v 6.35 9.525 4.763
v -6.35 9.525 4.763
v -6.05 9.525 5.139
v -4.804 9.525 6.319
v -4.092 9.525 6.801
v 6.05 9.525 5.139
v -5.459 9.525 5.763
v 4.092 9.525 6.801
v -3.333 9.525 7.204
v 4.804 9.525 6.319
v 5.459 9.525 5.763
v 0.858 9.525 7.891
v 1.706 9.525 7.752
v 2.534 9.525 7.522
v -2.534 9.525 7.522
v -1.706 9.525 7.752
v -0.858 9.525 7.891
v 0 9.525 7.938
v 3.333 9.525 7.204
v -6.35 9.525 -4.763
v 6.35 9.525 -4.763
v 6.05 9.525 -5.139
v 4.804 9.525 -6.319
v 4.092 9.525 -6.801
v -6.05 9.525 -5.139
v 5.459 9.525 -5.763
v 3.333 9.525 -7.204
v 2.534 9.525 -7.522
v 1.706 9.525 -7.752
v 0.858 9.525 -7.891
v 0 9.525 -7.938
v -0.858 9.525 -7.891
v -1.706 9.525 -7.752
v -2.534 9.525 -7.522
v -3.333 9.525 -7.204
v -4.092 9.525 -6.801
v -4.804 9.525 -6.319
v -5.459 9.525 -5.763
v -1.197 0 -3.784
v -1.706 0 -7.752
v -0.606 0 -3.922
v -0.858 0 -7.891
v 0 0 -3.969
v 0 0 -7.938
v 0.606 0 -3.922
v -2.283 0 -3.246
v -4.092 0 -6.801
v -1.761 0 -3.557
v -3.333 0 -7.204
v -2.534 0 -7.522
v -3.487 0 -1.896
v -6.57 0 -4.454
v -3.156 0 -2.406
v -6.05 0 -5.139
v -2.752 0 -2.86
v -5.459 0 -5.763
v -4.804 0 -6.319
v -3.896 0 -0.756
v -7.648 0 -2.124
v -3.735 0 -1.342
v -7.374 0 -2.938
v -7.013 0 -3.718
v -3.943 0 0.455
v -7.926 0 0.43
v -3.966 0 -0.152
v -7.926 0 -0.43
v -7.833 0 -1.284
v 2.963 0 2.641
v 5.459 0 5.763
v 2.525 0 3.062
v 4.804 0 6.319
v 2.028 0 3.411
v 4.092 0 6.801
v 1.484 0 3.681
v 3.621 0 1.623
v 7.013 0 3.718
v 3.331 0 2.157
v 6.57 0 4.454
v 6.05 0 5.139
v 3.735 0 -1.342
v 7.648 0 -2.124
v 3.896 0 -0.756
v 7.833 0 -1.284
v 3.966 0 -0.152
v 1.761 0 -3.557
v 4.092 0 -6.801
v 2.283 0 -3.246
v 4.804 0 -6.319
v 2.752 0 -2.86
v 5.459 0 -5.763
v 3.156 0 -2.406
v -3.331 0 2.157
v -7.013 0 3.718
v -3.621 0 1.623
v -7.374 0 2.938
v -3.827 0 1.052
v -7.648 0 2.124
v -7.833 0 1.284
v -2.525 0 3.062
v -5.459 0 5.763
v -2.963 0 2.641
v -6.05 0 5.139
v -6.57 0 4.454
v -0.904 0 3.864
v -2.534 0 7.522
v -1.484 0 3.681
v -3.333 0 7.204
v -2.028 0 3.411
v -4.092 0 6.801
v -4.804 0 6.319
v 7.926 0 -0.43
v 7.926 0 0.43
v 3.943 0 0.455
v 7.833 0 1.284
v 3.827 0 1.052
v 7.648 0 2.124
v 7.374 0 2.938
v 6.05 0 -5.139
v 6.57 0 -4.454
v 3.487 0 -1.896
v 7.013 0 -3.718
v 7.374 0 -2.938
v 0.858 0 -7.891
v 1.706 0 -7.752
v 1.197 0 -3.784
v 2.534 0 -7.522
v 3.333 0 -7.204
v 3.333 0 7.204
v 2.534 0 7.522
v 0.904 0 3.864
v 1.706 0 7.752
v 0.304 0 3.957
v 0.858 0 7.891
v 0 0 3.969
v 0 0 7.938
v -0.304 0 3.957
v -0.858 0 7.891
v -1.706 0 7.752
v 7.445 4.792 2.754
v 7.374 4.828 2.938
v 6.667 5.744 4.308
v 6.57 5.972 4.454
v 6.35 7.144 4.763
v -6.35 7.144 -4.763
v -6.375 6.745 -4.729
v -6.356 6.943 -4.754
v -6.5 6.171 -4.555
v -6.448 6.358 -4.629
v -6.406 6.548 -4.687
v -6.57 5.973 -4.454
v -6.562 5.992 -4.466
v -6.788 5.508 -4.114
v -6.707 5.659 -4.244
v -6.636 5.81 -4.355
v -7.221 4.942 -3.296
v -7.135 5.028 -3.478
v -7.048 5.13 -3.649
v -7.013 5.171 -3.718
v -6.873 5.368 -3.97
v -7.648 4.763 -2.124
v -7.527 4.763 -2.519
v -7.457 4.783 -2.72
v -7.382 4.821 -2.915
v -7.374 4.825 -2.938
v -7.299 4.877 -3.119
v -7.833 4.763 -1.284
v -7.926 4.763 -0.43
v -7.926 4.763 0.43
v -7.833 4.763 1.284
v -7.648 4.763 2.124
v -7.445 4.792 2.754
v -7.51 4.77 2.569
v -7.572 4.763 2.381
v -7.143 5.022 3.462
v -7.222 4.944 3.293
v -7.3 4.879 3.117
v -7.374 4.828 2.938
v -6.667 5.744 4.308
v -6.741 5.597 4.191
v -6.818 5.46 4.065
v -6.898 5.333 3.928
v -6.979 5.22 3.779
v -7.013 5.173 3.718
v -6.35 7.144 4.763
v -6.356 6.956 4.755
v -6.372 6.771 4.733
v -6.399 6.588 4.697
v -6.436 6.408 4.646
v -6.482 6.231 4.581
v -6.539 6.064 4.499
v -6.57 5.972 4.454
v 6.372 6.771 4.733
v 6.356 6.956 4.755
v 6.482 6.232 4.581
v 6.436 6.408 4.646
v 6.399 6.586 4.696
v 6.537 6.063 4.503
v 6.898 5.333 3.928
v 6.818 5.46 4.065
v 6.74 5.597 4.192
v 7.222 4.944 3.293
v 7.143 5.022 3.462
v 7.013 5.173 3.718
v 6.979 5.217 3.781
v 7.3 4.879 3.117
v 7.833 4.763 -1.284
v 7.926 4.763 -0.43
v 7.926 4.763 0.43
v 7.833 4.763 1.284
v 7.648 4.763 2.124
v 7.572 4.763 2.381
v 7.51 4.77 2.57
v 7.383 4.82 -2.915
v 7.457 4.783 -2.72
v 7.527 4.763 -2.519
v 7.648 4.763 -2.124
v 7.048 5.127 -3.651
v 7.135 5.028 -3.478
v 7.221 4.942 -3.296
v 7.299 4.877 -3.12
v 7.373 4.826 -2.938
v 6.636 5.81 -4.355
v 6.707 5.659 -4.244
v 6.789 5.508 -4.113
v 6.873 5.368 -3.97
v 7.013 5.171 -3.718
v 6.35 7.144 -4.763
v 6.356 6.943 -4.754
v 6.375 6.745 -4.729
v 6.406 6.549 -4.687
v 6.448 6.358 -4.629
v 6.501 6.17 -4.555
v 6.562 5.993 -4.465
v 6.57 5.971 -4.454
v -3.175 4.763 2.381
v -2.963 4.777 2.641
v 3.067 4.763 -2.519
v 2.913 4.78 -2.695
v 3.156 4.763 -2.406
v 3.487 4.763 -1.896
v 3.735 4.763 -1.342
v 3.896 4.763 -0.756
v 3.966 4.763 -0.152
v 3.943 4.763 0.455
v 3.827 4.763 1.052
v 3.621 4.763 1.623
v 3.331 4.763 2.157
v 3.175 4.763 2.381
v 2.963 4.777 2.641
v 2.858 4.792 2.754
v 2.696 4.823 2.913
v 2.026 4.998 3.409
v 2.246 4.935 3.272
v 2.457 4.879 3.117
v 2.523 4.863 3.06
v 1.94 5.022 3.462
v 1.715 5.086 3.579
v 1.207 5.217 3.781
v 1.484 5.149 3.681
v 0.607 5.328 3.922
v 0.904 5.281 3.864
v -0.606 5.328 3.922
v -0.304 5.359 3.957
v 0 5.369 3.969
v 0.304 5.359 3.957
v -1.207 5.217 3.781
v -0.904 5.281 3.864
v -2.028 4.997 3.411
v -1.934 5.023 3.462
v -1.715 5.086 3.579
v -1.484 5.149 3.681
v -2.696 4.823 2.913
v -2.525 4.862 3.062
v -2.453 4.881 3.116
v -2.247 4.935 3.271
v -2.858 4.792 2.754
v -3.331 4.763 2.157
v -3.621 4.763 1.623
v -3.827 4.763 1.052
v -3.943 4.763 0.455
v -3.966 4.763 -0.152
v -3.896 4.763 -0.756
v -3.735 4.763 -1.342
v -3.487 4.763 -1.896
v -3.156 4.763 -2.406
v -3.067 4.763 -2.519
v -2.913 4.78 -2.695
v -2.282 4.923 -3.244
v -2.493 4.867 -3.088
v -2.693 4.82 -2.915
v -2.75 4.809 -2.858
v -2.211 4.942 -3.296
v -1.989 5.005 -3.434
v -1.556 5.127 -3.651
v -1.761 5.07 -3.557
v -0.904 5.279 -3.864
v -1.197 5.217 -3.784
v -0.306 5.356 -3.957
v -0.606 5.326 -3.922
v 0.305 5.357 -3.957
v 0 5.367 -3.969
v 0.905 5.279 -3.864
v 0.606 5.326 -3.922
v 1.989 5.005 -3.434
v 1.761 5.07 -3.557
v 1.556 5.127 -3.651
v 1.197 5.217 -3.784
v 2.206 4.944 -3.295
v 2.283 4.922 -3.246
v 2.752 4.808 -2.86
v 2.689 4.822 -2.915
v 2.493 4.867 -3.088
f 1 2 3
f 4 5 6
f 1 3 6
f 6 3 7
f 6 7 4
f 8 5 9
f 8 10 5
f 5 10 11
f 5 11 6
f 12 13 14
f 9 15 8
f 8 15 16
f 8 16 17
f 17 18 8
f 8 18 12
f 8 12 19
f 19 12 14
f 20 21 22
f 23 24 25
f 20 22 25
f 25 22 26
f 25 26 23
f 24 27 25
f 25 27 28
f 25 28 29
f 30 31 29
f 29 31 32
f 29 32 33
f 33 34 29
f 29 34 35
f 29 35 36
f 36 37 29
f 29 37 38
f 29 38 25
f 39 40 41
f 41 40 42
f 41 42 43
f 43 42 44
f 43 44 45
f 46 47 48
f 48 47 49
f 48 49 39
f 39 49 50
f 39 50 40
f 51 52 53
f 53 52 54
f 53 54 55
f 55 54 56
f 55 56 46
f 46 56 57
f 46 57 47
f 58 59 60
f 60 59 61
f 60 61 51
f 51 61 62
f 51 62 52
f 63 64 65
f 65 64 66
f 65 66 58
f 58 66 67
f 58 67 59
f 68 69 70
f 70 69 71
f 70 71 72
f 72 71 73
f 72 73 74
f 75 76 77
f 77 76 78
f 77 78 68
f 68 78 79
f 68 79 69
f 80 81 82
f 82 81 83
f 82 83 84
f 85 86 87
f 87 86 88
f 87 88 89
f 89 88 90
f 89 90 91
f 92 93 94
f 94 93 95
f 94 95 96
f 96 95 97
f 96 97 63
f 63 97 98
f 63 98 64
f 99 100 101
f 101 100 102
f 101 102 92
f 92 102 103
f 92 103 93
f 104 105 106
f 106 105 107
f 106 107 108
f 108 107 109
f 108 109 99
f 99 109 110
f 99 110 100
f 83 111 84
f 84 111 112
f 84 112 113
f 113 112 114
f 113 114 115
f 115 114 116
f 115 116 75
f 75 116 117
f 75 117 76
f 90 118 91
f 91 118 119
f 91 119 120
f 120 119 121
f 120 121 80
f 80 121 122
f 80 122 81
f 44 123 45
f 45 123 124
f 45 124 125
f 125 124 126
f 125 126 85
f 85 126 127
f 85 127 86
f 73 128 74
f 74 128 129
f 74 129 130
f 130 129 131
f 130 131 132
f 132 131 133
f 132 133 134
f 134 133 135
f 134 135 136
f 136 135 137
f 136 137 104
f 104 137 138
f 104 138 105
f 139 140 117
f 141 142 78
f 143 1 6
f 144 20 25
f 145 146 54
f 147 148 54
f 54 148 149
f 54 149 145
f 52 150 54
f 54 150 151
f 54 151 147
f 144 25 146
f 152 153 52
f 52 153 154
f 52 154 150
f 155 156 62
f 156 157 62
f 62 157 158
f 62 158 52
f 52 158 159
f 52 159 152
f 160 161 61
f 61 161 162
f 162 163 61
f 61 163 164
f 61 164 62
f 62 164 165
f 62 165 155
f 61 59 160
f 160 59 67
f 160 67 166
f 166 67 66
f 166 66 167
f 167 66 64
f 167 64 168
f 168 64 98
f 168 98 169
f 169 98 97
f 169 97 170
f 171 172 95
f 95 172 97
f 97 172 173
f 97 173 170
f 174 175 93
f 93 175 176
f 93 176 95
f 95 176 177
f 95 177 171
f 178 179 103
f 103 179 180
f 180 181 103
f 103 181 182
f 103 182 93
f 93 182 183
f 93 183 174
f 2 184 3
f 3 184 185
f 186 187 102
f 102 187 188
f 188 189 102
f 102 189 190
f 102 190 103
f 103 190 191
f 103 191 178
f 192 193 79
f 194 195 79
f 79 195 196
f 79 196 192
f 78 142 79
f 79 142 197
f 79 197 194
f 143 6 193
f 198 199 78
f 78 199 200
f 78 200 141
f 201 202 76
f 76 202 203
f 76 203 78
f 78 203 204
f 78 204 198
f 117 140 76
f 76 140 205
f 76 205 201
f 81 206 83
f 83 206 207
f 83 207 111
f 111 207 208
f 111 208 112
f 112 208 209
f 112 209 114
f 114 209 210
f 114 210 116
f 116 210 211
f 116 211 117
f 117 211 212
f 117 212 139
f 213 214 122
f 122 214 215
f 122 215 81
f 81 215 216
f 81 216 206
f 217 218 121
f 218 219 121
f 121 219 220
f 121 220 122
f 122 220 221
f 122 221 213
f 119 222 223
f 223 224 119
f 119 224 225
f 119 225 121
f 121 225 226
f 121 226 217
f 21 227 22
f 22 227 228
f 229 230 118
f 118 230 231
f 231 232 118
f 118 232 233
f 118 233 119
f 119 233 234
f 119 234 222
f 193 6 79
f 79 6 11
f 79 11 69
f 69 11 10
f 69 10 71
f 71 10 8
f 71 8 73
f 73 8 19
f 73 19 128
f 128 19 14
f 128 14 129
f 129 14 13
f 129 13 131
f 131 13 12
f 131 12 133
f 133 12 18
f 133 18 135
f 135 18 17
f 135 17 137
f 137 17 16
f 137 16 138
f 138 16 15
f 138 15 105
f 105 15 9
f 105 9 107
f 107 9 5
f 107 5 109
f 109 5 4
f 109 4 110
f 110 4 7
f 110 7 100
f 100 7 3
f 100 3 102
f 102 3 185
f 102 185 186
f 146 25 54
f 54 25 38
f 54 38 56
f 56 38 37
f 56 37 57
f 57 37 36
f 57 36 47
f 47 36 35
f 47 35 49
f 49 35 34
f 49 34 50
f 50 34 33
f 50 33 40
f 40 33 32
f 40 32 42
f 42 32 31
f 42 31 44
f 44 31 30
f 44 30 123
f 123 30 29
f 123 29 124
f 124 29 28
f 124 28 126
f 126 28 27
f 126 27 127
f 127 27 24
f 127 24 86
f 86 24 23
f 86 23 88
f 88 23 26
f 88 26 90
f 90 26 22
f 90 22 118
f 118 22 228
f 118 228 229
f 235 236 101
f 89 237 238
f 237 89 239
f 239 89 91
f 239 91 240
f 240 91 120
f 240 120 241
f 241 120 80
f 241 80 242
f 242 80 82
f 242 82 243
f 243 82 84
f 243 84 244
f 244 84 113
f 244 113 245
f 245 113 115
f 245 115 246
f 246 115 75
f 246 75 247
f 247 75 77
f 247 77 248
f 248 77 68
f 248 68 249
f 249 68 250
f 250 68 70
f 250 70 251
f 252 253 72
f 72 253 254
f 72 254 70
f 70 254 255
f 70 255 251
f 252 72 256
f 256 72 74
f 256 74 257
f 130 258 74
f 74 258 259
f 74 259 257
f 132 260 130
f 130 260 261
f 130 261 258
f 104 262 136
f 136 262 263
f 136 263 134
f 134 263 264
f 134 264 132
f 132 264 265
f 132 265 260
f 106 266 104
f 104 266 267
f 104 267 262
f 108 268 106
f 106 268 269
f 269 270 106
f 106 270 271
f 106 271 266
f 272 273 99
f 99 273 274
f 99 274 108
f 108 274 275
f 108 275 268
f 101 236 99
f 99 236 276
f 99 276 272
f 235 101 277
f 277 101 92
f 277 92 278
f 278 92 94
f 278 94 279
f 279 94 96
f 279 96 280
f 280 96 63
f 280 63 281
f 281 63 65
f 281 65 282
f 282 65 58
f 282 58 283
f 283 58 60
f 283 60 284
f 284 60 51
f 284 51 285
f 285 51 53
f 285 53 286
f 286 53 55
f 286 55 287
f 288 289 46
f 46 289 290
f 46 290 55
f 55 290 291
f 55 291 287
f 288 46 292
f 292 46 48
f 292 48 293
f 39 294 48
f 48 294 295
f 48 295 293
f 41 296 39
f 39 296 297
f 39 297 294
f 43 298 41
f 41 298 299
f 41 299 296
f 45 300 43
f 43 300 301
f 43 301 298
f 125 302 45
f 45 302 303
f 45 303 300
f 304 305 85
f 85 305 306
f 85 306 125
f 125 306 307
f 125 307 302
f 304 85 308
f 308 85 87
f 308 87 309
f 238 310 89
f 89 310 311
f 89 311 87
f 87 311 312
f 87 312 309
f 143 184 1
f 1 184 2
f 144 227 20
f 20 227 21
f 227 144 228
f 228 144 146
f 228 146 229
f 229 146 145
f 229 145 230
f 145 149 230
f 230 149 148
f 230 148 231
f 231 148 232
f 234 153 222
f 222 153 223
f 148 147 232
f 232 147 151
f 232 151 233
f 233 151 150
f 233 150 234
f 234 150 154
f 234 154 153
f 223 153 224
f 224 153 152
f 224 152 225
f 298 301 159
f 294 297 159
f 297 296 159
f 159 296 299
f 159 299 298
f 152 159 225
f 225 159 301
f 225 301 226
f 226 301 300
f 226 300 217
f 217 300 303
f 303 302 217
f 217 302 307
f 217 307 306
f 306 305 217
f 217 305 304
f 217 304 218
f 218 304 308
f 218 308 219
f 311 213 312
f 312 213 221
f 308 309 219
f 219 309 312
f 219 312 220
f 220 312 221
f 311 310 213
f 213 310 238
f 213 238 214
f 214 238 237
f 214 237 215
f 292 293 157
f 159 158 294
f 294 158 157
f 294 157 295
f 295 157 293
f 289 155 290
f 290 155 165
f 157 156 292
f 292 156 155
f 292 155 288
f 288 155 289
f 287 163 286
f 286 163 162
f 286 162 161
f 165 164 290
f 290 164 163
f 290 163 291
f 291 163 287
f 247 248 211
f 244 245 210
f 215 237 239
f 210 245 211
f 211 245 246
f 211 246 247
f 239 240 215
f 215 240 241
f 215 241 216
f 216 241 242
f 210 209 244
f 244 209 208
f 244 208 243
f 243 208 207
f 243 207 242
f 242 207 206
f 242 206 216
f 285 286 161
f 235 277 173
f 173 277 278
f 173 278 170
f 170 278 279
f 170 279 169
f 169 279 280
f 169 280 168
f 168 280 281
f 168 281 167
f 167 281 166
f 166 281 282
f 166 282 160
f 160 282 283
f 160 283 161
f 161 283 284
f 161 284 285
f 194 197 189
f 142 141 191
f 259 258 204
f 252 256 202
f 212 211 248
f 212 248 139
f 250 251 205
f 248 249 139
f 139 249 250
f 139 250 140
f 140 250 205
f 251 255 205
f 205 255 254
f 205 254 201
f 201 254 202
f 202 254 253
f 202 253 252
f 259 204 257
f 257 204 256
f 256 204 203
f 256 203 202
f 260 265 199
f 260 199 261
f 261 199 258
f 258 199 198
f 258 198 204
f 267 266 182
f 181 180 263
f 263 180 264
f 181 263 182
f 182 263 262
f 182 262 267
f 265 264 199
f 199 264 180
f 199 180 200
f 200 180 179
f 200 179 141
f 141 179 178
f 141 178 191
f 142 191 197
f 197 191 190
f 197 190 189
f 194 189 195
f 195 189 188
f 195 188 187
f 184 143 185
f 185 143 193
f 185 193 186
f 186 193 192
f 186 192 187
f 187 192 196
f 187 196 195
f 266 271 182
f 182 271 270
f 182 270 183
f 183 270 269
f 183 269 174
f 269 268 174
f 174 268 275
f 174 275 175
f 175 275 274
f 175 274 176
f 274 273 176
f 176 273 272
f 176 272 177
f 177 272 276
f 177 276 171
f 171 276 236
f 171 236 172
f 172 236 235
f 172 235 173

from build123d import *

# Parameters (mm, degrees)
SKETCH1_R               = 7.9375
SKETCH1_R_2             = 3.96875
BOSS_EXTRUDE1_DEPTH     = 9.525
CUT_EXTRUDE1_DEPTH      = 15.721869362
CUT_EXTRUDE1_DEPTH_BACK = 15.721869362


with BuildPart() as part:
    # Sketch1 → Boss-Extrude1 (new body)
    with BuildSketch(Plane(origin=(0, 0, 0), x_dir=(1, 0, 0), z_dir=(0, 1, 0))):
        with Locations(Location((0, 0, 0), (0, 0, 90))):
            Circle(SKETCH1_R)
        with Locations(Location((0, 0, 0), (0, 0, 90))):
            Circle(SKETCH1_R_2, mode=Mode.SUBTRACT)
    extrude(amount=BOSS_EXTRUDE1_DEPTH)

    # Sketch2 → Cut-Extrude1 (cut, two sides: drawn at the far end of the back side and taken through both)
    with BuildSketch(Plane(origin=(0, 0, 0), x_dir=(0, 0, -1), z_dir=(1, 0, 0)).offset(-CUT_EXTRUDE1_DEPTH_BACK)):
        with BuildLine():
            Line((-4.7625, 9.525), (4.7625, 9.525))
            Line((4.7625, 9.525), (4.7625, 7.14375))
            ThreePointArc((4.7625, 7.14375), (4.113428058, 5.508074192), (2.519424024, 4.7625))
            Line((2.519424024, 4.7625), (-2.38125, 4.7625))
            ThreePointArc((-2.38125, 4.7625), (-4.065048023, 5.459951977), (-4.7625, 7.14375))
            Line((-4.7625, 7.14375), (-4.7625, 9.525))
        make_face()
    extrude(amount=CUT_EXTRUDE1_DEPTH + CUT_EXTRUDE1_DEPTH_BACK, mode=Mode.SUBTRACT)


solid = part.part
